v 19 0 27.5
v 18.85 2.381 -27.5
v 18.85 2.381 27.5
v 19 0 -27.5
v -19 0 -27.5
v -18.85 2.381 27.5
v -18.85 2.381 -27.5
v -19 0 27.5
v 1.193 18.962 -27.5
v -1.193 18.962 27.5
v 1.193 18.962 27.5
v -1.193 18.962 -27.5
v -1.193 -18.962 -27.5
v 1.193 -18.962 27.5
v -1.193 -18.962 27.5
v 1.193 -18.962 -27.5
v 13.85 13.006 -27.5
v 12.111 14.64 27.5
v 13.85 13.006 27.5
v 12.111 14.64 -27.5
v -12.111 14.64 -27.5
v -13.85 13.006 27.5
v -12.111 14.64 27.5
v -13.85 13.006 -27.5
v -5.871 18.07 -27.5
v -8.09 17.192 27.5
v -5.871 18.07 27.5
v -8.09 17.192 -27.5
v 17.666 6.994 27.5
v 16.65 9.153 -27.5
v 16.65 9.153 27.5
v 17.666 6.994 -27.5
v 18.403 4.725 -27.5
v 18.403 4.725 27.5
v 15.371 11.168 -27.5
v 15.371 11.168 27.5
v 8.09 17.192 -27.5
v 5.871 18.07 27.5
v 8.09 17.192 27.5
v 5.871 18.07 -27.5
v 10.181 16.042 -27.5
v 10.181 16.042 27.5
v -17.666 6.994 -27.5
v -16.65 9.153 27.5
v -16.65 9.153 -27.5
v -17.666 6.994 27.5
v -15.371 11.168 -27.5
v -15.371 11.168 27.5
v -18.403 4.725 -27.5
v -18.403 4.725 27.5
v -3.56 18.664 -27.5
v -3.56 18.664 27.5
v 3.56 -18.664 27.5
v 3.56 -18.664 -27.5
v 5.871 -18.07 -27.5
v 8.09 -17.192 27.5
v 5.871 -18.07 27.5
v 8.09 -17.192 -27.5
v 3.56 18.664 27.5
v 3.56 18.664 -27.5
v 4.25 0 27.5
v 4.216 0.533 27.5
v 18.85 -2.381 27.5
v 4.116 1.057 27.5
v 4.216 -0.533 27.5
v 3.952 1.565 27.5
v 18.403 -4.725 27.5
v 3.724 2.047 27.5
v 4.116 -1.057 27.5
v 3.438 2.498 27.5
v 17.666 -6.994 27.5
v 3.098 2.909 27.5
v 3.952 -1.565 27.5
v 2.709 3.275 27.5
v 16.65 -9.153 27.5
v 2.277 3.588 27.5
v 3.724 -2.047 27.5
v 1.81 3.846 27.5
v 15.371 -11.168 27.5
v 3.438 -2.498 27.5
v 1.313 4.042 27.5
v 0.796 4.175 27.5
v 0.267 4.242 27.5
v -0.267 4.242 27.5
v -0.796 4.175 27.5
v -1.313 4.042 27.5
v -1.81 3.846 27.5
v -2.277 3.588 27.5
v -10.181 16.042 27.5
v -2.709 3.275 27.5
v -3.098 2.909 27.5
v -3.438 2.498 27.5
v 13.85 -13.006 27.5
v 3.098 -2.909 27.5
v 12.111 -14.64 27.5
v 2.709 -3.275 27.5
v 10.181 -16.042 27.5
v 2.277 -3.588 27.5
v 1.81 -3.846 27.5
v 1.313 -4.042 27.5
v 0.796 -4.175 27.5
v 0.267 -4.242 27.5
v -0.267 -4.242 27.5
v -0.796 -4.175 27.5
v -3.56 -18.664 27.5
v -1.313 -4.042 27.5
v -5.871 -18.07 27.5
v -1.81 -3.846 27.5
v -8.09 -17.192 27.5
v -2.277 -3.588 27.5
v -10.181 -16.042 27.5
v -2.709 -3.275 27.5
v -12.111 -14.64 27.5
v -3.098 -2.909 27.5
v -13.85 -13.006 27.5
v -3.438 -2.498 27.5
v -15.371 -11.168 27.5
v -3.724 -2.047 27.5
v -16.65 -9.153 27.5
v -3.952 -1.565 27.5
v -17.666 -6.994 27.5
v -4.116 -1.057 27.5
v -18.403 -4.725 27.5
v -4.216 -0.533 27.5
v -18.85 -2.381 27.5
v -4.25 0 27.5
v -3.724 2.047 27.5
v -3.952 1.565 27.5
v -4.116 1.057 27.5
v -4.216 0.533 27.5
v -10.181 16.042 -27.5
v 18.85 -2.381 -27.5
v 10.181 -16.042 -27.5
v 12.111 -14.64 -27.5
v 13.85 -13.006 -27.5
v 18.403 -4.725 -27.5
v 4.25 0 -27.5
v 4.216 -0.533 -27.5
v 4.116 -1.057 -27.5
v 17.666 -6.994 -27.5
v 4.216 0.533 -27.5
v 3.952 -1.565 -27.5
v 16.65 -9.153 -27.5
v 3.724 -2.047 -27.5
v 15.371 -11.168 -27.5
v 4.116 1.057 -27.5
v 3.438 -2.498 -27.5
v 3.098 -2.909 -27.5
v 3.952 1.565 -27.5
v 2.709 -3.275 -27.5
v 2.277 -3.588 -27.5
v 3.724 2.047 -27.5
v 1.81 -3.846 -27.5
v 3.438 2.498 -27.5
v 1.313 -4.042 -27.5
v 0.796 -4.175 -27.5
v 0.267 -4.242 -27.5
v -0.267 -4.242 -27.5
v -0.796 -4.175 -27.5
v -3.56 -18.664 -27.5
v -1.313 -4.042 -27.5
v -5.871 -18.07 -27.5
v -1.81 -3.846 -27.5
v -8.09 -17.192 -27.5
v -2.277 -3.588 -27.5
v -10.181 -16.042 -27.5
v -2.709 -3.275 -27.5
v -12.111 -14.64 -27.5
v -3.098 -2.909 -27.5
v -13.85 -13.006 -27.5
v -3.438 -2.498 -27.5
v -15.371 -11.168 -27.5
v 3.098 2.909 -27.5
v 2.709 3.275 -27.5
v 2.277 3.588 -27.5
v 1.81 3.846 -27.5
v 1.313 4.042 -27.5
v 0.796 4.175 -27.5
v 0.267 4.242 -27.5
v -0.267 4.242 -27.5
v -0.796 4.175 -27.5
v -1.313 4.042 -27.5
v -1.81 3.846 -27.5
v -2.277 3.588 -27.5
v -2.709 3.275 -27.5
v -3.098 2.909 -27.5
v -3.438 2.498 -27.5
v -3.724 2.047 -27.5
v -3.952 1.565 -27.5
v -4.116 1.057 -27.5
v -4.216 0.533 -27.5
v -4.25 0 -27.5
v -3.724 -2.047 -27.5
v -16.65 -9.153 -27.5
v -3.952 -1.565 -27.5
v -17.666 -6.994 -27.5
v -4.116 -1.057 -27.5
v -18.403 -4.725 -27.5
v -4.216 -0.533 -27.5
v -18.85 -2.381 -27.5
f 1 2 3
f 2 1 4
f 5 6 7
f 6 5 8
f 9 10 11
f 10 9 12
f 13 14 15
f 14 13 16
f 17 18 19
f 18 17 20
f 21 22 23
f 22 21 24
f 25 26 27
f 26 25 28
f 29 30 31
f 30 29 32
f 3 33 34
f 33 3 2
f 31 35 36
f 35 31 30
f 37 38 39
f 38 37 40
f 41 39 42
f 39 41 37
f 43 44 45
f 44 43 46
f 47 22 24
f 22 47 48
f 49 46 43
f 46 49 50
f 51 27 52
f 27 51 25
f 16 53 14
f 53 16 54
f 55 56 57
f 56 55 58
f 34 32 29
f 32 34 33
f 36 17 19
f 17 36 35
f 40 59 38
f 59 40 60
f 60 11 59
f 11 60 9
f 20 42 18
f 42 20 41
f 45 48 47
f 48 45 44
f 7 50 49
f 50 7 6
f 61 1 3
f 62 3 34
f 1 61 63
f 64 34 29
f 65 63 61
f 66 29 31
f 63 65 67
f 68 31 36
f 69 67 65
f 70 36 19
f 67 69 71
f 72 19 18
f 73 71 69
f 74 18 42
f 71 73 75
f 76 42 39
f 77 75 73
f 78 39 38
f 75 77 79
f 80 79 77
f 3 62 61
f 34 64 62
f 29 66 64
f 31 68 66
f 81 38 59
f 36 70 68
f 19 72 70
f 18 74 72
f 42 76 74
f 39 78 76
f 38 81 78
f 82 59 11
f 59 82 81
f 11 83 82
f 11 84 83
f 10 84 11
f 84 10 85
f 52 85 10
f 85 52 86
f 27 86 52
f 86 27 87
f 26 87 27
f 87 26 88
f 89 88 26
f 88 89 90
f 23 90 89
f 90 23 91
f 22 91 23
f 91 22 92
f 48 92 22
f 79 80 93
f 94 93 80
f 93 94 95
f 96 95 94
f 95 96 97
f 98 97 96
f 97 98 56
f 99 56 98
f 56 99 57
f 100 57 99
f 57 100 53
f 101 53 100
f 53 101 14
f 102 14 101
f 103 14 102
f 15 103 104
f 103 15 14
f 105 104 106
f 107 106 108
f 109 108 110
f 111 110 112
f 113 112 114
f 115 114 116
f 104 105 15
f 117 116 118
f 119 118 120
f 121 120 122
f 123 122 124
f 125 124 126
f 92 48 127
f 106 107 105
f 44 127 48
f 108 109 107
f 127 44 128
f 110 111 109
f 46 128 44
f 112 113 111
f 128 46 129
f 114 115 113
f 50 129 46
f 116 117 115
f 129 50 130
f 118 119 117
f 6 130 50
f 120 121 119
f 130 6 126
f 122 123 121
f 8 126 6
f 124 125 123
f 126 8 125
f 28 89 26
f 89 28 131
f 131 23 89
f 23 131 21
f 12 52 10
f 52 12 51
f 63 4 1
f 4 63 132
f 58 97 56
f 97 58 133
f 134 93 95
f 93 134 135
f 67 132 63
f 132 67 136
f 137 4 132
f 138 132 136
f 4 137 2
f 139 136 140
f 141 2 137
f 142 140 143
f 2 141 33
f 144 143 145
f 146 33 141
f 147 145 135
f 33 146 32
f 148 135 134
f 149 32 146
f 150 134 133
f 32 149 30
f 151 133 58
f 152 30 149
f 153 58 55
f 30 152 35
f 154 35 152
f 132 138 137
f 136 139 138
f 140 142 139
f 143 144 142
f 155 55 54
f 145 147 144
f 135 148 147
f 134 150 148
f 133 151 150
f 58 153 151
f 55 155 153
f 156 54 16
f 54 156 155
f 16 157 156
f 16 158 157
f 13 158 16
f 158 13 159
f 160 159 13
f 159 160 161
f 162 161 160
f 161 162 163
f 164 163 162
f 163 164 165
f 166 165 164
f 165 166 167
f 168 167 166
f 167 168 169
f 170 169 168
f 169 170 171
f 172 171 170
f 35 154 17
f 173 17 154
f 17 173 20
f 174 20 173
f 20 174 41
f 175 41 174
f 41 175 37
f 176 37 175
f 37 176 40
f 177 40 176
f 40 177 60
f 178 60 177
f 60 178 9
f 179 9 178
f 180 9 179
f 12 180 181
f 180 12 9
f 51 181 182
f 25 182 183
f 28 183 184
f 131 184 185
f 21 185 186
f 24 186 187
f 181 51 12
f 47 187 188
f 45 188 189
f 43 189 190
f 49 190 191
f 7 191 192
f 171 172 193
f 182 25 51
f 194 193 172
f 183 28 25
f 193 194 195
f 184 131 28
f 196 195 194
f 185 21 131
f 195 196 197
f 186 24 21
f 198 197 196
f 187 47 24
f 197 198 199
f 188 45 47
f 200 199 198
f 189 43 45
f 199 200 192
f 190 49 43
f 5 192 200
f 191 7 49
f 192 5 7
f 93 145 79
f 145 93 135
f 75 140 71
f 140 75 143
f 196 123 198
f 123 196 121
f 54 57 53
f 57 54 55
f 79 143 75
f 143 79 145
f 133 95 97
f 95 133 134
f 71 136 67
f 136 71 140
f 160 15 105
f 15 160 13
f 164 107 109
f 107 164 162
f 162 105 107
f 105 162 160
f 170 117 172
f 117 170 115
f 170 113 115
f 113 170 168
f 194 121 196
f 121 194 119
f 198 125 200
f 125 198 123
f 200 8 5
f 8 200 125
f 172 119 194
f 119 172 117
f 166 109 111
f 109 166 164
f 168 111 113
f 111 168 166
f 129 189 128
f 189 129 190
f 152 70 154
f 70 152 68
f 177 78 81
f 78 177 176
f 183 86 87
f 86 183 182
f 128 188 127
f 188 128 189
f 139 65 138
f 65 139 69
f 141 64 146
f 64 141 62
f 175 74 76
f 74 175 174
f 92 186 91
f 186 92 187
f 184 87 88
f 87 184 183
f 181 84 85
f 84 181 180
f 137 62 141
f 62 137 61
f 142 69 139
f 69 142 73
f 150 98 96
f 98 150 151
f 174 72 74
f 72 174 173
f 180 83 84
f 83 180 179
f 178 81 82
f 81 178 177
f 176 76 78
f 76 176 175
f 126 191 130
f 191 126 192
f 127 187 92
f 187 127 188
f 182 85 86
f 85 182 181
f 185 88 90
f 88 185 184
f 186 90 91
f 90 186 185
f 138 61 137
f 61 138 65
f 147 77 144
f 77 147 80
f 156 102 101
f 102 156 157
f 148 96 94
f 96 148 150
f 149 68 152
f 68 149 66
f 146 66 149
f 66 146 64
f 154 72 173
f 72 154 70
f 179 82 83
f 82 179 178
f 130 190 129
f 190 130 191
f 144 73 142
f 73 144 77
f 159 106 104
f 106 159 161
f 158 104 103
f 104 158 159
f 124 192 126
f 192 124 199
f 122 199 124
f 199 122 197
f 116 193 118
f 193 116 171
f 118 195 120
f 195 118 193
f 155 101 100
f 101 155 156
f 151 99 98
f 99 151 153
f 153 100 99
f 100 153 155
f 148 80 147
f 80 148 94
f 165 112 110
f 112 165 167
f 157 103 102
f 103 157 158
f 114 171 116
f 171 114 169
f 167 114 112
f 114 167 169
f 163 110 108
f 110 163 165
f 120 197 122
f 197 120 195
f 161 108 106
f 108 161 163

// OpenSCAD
$fn = 50;


difference() {
	union() {
		translate(v = [0, 0, -27.5000000000]) {
			cylinder(h = 55, r = 19.0000000000);
		}
	}
	union() {
		translate(v = [0, 0, -100.0000000000]) {
			cylinder(h = 200, r = 4.2500000000);
		}
	}
}
